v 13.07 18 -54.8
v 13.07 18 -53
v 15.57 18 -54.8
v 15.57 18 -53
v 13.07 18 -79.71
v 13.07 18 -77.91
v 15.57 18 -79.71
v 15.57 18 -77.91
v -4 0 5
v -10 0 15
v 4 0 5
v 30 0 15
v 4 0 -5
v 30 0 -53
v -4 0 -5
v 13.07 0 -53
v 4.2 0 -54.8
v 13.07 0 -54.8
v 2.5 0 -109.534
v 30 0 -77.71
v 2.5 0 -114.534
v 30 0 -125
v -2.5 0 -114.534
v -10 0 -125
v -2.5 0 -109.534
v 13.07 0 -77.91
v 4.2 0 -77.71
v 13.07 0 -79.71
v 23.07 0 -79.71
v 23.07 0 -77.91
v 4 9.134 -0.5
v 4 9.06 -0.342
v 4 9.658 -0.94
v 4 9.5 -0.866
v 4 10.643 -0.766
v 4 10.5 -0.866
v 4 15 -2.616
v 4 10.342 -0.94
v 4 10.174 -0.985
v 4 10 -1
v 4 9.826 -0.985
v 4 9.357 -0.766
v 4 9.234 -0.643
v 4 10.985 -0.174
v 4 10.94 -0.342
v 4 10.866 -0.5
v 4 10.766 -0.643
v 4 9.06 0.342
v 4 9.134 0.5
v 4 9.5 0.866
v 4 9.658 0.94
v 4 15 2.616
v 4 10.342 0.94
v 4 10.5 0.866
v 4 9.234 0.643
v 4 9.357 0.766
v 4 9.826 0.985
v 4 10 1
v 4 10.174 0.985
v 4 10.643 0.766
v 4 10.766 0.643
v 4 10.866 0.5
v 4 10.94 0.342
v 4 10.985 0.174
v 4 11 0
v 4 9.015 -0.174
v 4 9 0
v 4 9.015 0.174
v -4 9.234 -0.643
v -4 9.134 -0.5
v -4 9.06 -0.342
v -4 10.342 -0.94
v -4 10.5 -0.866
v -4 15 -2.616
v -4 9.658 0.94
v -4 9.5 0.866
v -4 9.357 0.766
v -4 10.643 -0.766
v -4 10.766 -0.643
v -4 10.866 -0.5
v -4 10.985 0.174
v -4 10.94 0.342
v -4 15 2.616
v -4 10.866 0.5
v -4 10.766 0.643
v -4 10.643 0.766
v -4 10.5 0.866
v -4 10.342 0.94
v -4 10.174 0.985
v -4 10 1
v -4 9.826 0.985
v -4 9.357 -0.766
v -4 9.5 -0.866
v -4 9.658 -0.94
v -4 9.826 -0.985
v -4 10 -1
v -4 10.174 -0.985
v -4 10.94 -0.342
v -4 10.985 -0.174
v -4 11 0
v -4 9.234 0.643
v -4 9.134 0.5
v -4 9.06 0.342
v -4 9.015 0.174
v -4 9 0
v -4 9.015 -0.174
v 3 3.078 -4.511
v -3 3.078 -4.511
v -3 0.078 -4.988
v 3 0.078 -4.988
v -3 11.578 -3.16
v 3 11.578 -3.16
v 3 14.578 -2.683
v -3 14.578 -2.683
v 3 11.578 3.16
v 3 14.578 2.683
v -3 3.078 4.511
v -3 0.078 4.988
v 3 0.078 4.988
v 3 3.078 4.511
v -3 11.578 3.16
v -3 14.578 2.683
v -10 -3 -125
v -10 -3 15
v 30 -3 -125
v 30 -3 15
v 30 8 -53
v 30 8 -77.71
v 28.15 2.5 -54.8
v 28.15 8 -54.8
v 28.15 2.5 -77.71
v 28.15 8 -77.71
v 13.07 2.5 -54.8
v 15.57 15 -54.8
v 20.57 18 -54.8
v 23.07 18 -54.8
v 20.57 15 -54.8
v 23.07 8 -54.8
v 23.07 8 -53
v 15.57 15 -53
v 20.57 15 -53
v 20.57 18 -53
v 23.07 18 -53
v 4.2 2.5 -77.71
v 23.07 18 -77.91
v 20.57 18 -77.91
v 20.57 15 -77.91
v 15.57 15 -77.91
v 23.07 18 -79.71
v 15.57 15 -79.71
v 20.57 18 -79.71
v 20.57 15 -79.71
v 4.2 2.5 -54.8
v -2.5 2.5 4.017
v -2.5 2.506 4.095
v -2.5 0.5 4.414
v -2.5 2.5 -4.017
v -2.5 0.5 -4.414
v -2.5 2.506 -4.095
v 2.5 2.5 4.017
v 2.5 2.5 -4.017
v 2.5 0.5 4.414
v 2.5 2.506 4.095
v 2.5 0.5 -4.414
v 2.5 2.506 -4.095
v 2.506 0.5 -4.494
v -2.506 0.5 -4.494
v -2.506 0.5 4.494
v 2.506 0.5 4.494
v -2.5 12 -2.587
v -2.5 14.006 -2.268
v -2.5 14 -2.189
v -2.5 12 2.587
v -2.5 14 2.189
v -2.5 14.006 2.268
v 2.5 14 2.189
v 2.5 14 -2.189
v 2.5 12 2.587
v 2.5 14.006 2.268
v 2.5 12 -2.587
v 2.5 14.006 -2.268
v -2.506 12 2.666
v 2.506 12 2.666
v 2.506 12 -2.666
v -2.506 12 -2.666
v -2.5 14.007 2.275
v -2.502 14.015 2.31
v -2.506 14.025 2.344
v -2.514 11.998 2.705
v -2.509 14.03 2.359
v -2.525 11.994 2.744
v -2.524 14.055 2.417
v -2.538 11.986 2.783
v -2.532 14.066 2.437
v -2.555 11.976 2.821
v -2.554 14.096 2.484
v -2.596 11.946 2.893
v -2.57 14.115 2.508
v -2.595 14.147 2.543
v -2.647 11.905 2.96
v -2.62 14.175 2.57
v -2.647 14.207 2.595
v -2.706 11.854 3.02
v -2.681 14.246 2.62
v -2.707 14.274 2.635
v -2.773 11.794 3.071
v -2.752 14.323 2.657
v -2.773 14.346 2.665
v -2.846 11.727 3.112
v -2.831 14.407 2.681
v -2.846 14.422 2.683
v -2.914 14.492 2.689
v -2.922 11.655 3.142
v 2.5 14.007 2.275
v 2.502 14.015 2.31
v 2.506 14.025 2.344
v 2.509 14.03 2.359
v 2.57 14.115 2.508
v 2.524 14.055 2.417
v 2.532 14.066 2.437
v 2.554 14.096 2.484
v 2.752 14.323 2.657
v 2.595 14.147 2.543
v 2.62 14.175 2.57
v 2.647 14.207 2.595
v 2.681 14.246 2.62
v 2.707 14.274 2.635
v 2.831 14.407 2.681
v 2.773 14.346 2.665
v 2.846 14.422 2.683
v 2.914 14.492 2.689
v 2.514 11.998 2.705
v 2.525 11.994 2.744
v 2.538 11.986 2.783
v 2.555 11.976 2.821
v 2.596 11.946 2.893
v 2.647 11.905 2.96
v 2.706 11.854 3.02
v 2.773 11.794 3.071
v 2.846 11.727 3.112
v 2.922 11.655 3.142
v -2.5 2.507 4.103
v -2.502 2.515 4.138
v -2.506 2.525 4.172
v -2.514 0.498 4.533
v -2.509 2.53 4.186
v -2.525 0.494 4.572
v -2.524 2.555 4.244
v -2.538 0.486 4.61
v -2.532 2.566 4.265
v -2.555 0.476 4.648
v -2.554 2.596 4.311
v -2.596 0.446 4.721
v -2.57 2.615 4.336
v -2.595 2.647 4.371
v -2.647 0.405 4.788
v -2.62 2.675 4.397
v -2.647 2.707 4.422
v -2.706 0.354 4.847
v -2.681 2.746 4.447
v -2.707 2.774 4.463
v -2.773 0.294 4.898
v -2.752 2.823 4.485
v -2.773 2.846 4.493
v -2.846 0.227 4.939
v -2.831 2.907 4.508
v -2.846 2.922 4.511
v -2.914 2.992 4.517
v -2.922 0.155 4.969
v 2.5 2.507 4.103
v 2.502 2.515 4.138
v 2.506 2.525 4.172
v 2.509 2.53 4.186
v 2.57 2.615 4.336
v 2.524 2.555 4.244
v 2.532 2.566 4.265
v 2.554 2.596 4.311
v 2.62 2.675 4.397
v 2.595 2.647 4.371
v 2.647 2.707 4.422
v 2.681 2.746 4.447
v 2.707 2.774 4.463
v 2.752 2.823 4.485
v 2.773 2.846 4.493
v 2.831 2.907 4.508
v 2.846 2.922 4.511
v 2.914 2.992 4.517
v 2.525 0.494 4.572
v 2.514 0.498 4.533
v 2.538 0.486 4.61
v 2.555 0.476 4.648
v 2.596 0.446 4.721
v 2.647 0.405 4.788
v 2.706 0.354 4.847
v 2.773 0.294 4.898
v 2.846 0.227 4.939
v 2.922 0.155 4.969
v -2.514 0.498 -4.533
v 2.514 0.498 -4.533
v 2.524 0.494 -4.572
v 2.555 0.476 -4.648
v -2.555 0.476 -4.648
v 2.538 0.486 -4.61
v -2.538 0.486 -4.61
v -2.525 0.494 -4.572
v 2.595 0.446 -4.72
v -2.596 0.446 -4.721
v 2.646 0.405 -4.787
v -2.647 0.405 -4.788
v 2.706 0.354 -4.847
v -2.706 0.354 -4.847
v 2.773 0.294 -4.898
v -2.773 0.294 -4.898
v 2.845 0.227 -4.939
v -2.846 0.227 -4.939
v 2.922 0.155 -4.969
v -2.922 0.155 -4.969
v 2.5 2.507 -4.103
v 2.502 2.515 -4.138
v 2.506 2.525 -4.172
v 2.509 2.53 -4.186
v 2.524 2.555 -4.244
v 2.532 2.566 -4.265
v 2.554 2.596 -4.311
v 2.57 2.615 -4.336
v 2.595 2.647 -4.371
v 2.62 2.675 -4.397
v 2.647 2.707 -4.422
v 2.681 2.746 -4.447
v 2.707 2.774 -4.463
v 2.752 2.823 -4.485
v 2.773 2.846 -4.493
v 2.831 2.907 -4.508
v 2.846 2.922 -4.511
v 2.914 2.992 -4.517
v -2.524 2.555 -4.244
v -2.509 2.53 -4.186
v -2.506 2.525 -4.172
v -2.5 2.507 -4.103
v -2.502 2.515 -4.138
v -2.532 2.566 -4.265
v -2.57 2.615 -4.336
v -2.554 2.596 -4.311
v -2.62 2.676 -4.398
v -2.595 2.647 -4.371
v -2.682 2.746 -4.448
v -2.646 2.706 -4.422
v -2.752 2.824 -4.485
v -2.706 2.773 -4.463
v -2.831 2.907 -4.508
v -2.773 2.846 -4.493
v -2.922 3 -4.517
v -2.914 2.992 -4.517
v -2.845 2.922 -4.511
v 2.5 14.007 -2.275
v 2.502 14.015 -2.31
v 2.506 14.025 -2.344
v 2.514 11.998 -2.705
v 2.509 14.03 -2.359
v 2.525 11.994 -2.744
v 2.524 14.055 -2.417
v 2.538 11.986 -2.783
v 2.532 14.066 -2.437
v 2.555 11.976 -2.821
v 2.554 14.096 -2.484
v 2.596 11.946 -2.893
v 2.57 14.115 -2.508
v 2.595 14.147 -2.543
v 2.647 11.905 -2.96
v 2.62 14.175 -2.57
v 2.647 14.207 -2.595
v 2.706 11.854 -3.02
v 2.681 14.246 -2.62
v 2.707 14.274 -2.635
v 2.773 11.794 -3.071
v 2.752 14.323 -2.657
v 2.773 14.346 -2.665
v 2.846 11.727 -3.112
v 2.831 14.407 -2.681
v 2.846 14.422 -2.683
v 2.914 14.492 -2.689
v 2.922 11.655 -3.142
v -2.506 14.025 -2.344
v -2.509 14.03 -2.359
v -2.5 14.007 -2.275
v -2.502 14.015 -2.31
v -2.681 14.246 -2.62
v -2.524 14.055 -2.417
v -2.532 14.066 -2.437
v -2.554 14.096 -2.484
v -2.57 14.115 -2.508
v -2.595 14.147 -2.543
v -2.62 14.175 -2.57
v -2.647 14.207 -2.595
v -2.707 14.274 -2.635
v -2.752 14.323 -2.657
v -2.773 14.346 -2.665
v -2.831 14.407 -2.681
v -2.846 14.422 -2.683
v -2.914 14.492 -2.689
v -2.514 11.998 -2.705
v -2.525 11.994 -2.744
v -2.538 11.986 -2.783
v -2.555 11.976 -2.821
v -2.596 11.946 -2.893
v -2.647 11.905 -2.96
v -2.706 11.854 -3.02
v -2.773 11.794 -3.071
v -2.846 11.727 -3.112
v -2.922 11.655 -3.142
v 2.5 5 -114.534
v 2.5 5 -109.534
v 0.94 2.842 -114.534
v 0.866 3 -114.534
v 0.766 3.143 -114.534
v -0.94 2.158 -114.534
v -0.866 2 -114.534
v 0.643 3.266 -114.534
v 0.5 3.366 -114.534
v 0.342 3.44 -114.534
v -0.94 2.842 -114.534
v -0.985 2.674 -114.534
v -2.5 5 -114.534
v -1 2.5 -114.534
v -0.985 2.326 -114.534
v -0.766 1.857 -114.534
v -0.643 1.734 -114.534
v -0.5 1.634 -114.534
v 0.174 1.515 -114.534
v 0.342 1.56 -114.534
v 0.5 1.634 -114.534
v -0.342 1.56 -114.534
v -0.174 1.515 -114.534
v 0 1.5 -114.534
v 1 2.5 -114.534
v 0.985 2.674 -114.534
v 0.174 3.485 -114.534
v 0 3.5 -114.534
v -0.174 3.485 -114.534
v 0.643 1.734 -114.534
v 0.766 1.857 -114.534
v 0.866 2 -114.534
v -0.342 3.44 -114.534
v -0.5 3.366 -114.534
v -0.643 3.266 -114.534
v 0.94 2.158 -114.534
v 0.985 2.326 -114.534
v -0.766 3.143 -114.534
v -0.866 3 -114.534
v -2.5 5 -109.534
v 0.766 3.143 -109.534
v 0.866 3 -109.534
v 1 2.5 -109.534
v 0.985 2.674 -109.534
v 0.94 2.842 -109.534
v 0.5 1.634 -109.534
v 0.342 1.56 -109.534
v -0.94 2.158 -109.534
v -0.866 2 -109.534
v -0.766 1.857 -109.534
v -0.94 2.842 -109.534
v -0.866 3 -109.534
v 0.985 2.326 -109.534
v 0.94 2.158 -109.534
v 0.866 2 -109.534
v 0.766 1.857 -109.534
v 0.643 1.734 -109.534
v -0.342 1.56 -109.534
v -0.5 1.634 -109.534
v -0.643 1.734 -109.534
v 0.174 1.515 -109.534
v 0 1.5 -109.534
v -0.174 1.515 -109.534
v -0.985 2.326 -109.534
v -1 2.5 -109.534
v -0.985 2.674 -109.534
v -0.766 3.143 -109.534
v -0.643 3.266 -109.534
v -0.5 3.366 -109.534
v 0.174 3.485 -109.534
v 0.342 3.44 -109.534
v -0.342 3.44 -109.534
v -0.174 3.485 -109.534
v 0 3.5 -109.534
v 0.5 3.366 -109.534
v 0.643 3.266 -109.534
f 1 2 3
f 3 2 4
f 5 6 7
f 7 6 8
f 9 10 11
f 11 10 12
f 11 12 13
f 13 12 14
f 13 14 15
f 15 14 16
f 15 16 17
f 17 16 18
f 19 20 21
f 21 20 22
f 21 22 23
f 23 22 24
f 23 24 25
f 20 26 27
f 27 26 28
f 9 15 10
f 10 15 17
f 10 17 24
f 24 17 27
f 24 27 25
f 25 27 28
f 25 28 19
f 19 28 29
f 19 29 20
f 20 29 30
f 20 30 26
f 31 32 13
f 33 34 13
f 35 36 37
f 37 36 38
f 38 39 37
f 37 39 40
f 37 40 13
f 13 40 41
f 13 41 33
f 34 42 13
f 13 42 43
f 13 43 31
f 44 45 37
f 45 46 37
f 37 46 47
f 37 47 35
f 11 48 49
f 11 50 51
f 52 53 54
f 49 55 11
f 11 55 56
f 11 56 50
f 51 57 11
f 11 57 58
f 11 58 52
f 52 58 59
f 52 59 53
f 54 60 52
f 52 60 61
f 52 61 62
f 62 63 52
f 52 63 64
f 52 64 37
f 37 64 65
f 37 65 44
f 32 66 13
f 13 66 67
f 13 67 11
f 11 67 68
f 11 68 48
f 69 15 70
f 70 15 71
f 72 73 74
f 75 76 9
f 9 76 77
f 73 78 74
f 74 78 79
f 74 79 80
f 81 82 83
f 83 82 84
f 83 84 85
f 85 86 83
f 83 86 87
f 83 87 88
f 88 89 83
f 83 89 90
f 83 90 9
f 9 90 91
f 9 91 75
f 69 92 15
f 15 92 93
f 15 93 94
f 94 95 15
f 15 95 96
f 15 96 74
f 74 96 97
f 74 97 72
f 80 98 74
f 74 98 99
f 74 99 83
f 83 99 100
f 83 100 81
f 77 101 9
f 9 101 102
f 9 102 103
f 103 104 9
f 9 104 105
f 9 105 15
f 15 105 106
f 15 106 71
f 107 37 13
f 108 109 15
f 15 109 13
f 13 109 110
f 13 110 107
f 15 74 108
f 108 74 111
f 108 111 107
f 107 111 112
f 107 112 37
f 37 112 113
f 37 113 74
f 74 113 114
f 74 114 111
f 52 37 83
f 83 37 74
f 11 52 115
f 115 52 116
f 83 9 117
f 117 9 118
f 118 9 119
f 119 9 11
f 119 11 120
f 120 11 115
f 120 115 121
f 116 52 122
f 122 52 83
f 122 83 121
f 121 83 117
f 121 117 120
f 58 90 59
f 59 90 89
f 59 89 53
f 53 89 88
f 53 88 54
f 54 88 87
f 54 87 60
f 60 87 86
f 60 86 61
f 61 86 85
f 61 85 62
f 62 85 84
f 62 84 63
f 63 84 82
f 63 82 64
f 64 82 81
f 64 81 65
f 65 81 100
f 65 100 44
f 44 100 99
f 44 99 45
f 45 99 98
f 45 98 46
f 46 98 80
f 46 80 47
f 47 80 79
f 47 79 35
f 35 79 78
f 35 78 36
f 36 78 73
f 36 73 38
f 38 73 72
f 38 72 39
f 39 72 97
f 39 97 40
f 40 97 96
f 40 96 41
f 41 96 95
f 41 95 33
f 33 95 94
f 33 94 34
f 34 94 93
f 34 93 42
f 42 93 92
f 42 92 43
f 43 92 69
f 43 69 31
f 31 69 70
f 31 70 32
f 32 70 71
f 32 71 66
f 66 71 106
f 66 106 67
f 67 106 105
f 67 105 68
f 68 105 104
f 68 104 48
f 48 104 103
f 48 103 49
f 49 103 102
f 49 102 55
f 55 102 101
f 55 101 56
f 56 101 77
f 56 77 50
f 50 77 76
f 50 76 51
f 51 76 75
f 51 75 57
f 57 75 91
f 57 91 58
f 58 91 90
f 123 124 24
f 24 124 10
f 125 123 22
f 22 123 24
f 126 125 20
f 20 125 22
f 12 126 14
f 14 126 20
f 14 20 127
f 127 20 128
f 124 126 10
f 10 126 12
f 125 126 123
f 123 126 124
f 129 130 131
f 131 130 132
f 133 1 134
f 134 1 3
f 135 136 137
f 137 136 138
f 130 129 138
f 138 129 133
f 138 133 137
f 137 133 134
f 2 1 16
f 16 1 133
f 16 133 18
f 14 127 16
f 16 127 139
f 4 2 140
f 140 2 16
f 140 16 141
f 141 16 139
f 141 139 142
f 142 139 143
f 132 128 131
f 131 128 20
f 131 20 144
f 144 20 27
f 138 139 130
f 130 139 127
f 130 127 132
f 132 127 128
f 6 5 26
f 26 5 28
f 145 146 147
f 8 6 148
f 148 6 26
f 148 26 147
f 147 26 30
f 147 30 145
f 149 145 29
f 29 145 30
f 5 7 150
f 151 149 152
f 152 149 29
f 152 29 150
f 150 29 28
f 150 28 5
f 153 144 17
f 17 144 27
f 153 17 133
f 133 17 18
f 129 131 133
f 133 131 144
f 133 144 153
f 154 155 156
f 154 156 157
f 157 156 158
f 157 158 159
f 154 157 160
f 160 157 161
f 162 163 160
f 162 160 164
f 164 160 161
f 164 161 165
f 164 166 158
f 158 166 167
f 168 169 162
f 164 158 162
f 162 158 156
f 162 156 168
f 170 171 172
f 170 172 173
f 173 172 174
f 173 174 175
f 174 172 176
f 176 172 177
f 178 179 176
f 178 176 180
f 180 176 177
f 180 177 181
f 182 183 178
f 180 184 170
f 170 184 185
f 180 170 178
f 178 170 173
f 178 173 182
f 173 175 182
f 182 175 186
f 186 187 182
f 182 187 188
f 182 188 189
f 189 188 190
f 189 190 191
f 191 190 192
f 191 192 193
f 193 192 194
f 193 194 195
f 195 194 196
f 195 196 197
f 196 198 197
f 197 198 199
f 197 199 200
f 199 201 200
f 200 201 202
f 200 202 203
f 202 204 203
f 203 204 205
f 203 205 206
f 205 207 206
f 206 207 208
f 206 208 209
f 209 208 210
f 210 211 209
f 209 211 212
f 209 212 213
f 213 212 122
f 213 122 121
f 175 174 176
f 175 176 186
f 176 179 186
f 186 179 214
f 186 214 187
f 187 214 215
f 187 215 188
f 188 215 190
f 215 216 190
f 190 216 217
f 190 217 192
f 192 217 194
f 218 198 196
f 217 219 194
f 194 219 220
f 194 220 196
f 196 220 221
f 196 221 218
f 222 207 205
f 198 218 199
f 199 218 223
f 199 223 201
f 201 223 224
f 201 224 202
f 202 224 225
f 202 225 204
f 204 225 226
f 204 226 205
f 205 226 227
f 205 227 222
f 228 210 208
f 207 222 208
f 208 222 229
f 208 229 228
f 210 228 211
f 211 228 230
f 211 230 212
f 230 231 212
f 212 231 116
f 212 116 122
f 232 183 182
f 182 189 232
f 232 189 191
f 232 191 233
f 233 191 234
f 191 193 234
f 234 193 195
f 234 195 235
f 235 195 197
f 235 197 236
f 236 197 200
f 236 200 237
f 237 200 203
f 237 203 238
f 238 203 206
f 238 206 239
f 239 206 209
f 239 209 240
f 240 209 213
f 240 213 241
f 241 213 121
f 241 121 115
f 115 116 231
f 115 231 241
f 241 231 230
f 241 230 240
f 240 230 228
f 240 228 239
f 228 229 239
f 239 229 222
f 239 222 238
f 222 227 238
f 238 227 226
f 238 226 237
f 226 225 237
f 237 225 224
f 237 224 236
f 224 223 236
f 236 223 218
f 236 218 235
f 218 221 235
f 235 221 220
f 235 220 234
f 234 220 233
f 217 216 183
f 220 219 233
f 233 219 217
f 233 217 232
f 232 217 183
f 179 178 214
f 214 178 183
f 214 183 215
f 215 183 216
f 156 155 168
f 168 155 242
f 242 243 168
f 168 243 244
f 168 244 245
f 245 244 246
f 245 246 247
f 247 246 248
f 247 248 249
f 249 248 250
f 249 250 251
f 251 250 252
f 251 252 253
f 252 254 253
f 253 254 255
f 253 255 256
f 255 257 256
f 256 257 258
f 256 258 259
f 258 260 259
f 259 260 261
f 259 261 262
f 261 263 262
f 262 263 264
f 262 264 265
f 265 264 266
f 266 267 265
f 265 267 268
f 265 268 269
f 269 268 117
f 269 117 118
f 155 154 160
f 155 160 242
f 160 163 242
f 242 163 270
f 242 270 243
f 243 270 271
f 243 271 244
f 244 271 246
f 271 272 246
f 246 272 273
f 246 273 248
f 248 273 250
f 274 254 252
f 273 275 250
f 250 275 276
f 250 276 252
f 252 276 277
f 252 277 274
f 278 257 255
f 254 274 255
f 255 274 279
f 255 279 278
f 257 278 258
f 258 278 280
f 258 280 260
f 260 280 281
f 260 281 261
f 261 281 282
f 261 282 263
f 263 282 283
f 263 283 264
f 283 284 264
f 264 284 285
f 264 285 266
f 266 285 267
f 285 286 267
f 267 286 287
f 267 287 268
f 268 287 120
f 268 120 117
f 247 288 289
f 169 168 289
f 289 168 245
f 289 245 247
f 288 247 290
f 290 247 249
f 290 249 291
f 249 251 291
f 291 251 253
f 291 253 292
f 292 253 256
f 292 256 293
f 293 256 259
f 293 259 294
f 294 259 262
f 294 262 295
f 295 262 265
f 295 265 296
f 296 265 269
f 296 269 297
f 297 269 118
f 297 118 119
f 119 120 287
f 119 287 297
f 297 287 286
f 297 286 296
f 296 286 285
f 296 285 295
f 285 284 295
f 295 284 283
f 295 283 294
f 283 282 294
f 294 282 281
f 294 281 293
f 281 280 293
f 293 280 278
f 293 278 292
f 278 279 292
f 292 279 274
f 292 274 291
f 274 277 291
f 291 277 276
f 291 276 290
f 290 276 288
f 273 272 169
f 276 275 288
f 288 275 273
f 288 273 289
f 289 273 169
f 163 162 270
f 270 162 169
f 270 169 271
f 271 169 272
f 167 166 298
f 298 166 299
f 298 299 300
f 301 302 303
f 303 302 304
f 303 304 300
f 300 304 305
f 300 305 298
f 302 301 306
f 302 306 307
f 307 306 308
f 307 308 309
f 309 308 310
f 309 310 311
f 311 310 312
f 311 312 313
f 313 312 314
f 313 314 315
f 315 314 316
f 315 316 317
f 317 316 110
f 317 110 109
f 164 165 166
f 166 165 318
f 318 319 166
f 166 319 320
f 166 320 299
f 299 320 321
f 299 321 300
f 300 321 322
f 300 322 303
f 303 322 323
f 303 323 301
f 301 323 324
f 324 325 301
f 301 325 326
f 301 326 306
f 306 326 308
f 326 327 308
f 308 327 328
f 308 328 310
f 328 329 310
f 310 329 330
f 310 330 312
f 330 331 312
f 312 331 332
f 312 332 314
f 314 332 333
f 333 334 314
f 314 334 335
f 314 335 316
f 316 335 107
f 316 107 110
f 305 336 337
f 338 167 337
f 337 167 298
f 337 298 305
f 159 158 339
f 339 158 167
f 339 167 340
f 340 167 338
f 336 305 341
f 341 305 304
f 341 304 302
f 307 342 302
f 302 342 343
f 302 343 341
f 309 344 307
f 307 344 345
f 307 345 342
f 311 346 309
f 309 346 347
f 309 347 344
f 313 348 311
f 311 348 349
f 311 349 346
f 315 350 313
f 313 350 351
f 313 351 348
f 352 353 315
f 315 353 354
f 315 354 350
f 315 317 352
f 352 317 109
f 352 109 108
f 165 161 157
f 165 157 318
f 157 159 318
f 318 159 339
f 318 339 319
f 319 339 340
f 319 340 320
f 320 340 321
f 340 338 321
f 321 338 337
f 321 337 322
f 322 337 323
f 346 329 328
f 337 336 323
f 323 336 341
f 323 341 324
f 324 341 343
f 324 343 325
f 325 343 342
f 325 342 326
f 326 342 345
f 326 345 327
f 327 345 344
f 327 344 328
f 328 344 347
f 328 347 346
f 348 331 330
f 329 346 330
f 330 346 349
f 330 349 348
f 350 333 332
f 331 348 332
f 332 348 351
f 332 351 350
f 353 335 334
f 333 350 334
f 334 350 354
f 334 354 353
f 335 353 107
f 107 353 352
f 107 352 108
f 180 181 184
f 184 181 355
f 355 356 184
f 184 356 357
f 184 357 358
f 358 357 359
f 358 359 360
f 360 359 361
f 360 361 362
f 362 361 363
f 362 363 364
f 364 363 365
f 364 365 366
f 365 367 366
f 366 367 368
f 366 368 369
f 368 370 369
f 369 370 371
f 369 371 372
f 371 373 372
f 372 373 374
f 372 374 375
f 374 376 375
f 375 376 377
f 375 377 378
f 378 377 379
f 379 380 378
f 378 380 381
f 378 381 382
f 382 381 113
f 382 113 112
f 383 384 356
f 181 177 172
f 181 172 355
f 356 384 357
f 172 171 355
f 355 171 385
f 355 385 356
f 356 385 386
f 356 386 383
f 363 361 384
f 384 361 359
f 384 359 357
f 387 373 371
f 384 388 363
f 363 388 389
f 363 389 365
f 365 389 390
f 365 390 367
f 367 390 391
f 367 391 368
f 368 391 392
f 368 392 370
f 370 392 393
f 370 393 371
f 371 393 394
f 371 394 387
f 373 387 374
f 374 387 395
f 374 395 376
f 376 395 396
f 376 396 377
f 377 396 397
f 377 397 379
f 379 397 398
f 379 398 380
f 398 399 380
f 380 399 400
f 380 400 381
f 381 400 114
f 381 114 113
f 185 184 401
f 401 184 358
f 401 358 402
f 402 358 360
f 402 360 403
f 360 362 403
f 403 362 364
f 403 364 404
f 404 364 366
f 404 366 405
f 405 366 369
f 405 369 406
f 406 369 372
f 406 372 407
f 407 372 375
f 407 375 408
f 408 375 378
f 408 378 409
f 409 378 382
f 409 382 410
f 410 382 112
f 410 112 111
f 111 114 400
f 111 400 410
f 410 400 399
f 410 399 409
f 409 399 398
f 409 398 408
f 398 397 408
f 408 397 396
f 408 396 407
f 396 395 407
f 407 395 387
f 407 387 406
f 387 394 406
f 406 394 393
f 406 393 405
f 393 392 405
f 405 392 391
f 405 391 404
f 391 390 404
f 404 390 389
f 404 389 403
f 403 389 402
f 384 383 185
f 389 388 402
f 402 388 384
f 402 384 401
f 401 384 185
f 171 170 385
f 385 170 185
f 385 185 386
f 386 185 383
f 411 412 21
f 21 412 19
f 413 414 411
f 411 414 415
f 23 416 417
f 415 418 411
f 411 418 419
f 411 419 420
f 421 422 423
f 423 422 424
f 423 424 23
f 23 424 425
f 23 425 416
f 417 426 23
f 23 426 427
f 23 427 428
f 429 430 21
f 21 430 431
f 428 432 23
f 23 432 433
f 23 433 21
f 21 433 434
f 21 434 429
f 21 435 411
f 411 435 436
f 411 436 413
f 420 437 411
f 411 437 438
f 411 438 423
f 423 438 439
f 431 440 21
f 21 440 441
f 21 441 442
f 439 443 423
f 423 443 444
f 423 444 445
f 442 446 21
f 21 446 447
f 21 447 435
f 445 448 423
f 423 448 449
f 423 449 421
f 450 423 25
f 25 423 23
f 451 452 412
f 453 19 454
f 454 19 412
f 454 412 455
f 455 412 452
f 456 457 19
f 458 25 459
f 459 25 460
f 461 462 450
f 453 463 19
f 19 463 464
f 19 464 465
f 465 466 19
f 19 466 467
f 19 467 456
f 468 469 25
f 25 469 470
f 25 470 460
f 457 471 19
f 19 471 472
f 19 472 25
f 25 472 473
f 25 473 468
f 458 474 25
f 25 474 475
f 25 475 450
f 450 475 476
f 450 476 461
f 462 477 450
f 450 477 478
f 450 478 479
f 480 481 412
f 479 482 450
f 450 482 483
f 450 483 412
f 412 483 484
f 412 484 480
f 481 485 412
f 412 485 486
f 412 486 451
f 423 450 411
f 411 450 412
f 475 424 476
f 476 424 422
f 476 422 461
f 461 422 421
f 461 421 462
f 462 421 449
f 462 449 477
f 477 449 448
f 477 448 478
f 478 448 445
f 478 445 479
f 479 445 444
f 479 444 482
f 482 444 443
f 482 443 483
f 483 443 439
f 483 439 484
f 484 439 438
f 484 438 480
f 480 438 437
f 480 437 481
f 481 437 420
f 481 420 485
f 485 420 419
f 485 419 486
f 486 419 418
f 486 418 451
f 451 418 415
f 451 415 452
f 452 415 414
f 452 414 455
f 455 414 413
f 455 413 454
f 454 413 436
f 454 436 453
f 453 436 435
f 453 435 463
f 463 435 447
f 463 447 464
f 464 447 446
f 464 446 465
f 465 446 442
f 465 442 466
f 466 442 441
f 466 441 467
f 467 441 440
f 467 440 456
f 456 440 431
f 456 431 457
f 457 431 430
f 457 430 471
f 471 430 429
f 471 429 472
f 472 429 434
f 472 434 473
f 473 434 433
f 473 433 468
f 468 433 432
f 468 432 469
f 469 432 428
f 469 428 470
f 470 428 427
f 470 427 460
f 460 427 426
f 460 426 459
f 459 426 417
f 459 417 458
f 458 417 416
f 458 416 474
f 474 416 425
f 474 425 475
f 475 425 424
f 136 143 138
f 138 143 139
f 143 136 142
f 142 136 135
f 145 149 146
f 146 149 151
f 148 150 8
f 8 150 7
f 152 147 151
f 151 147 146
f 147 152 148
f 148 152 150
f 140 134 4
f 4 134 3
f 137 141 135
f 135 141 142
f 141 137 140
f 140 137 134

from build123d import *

# Parameters (mm, degrees)
TEST_MOUNT_SKETCH_R                  = 1
TEST_MOUNT_EXTRUDE_DEPTH             = 4
MOUTNING_PLATE_SKETCH_W              = 40
MOUTNING_PLATE_SKETCH_H              = 140
MOUNTING_PLATE_EXTRUDE_DEPTH         = 3
SERVO_MOUNT_SKETCH_W                 = 10
SERVO_MOUNT_SKETCH_H                 = 1.8
MOUNTING_SERVO_EXTRUDE_DEPTH         = 8
SERVO_FLOOR_SKETCH_W                 = 23.95
SERVO_FLOOR_SKETCH_H                 = 22.91
SERVO_FLOOR_EXTRUDE_DEPTH            = 2.5
ROUTING_HOLES_SKETCH_W               = 5
ROUTING_HOLES_SKETCH_H               = 2
ROUTING_HOLES_EXTRUDED_CUT_DEPTH     = 10
ROUTING_FILLETS_R                    = 0.5
TIE_OFF_BASE_W                       = 5
TIE_OFF_BASE_H                       = 5
TIE_OFF_BASE_EXTRUDE_DEPTH           = 5
TIE_OFF_BASE_HOLE_SKETCH_R           = 1
TIE_OFF_BASE_HOLE_EXTRUDED_CUT_DEPTH = 5
SERVO_HOLD_SKETCH_W                  = 10
SERVO_HOLD_SKETCH_H                  = 1.8
SERVO_HOLD_EXTRUDE_DEPTH             = 10
SERVO_HOLDER_CUT_OUT_SKETCH_W        = 5
SERVO_HOLDER_CUT_OUT_SKETCH_H        = 1.8
SERVO_HOLDER_CUT_OUT_CUT_DEPTH       = 3


with BuildPart() as part:
    # Test Mount Sketch → Test Mount Extrude (new, symmetric)
    with BuildSketch(Plane(origin=(0, 0, 0), x_dir=(0, 0, -1), z_dir=(1, 0, 0))):
        Polygon((-5, 0), (-2.616302657, 15), (2.616302657, 15), (5, 0), align=None)
        with Locations((0, 10)):
            Circle(TEST_MOUNT_SKETCH_R, mode=Mode.SUBTRACT)
    extrude(amount=TEST_MOUNT_EXTRUDE_DEPTH, both=True)

    # Moutning Plate Sketch → Mounting Plate Extrude (add)
    with BuildSketch(Plane(origin=(0, 0, 0), x_dir=(1, 0, 0), z_dir=(0, 1, 0))):
        with Locations((10, 55)):
            Rectangle(MOUTNING_PLATE_SKETCH_W, MOUTNING_PLATE_SKETCH_H)
    extrude(amount=-MOUNTING_PLATE_EXTRUDE_DEPTH)

    # Servo Mount Sketch → Mounting Servo Extrude (add)
    with BuildSketch(Plane(origin=(0, 0, 0), x_dir=(1, 0, 0), z_dir=(0, 1, 0))):
        Polygon((30, 77.71), (28.15, 77.71), (28.15, 54.8), (13.07, 54.8), (13.07, 53), (30, 53), align=None)
        with Locations((18.07, 78.81)):
            Rectangle(SERVO_MOUNT_SKETCH_W, SERVO_MOUNT_SKETCH_H)
    extrude(amount=MOUNTING_SERVO_EXTRUDE_DEPTH)

    # Servo Floor Sketch → Servo Floor Extrude (add)
    with BuildSketch(Plane(origin=(0, 0, 0), x_dir=(1, 0, 0), z_dir=(0, 1, 0))):
        with Locations((16.175, 66.255)):
            Rectangle(SERVO_FLOOR_SKETCH_W, SERVO_FLOOR_SKETCH_H)
    extrude(amount=SERVO_FLOOR_EXTRUDE_DEPTH)

    # Routing Holes Sketch → Routing Holes Extruded Cut (cut)
    with BuildSketch(Plane.XY.offset(5)):
        with Locations((0, 13)):
            Rectangle(ROUTING_HOLES_SKETCH_W, ROUTING_HOLES_SKETCH_H)
        with Locations((0, 1.5)):
            Rectangle(ROUTING_HOLES_SKETCH_W, ROUTING_HOLES_SKETCH_H)
    extrude(amount=-ROUTING_HOLES_EXTRUDED_CUT_DEPTH, mode=Mode.SUBTRACT)

    # Routing Fillets
    routing_fillets_edges = [part.edges().sort_by_distance(p)[0] for p in [
        (-2.5, 1.5, -4.761630266),
        (0, 2.5, -4.602717109),
        (2.5, 1.5, -4.761630266),
        (0, 0.5, -4.920543422),
        (0, 0.5, 4.920543422),
        (2.5, 1.5, 4.761630266),
        (0, 2.5, 4.602717109),
        (-2.5, 1.5, 4.761630266),
        (0, 12, 3.093042125),
        (2.5, 13, 2.934128969),
        (0, 14, 2.775215813),
        (-2.5, 13, 2.934128969),
        (-2.5, 13, -2.934128969),
        (0, 14, -2.775215813),
        (2.5, 13, -2.934128969),
        (0, 12, -3.093042125),
    ]]
    fillet(routing_fillets_edges, radius=ROUTING_FILLETS_R)

    # Tie Off Base → Tie Off Base Extrude (add)
    with BuildSketch(Plane(origin=(0, 0, 0), x_dir=(1, 0, 0), z_dir=(0, 1, 0))):
        with Locations((0, 112.034286595)):
            Rectangle(TIE_OFF_BASE_W, TIE_OFF_BASE_H)
    extrude(amount=TIE_OFF_BASE_EXTRUDE_DEPTH)

    # Tie Off Base Hole Sketch → Tie Off Base Hole Extruded Cut (cut)
    with BuildSketch(Plane(origin=(0, 0, -114.534286595), x_dir=(-1, 0, 0), z_dir=(0, 0, -1))):
        with Locations((0, 2.5)):
            Circle(TIE_OFF_BASE_HOLE_SKETCH_R)
    extrude(amount=-TIE_OFF_BASE_HOLE_EXTRUDED_CUT_DEPTH, mode=Mode.SUBTRACT)

    # Servo Hold Sketch → Servo Hold Extrude (add)
    with BuildSketch(Plane(origin=(0, 8, 0), x_dir=(1, 0, 0), z_dir=(0, 1, 0))):
        with Locations((18.07, 78.81)):
            Rectangle(SERVO_HOLD_SKETCH_W, SERVO_HOLD_SKETCH_H)
        with Locations((18.07, 53.9)):
            Rectangle(SERVO_HOLD_SKETCH_W, SERVO_HOLD_SKETCH_H)
    extrude(amount=SERVO_HOLD_EXTRUDE_DEPTH)

    # Servo Holder Cut Out Sketch → Servo Holder Cut out Cut (cut)
    with BuildSketch(Plane(origin=(0, 18, 0), x_dir=(1, 0, 0), z_dir=(0, 1, 0))):
        with Locations((18.07, 78.81)):
            Rectangle(SERVO_HOLDER_CUT_OUT_SKETCH_W, SERVO_HOLDER_CUT_OUT_SKETCH_H)
        with Locations((18.07, 53.9)):
            Rectangle(SERVO_HOLDER_CUT_OUT_SKETCH_W, SERVO_HOLDER_CUT_OUT_SKETCH_H)
    extrude(amount=-SERVO_HOLDER_CUT_OUT_CUT_DEPTH, mode=Mode.SUBTRACT)


solid = part.part
